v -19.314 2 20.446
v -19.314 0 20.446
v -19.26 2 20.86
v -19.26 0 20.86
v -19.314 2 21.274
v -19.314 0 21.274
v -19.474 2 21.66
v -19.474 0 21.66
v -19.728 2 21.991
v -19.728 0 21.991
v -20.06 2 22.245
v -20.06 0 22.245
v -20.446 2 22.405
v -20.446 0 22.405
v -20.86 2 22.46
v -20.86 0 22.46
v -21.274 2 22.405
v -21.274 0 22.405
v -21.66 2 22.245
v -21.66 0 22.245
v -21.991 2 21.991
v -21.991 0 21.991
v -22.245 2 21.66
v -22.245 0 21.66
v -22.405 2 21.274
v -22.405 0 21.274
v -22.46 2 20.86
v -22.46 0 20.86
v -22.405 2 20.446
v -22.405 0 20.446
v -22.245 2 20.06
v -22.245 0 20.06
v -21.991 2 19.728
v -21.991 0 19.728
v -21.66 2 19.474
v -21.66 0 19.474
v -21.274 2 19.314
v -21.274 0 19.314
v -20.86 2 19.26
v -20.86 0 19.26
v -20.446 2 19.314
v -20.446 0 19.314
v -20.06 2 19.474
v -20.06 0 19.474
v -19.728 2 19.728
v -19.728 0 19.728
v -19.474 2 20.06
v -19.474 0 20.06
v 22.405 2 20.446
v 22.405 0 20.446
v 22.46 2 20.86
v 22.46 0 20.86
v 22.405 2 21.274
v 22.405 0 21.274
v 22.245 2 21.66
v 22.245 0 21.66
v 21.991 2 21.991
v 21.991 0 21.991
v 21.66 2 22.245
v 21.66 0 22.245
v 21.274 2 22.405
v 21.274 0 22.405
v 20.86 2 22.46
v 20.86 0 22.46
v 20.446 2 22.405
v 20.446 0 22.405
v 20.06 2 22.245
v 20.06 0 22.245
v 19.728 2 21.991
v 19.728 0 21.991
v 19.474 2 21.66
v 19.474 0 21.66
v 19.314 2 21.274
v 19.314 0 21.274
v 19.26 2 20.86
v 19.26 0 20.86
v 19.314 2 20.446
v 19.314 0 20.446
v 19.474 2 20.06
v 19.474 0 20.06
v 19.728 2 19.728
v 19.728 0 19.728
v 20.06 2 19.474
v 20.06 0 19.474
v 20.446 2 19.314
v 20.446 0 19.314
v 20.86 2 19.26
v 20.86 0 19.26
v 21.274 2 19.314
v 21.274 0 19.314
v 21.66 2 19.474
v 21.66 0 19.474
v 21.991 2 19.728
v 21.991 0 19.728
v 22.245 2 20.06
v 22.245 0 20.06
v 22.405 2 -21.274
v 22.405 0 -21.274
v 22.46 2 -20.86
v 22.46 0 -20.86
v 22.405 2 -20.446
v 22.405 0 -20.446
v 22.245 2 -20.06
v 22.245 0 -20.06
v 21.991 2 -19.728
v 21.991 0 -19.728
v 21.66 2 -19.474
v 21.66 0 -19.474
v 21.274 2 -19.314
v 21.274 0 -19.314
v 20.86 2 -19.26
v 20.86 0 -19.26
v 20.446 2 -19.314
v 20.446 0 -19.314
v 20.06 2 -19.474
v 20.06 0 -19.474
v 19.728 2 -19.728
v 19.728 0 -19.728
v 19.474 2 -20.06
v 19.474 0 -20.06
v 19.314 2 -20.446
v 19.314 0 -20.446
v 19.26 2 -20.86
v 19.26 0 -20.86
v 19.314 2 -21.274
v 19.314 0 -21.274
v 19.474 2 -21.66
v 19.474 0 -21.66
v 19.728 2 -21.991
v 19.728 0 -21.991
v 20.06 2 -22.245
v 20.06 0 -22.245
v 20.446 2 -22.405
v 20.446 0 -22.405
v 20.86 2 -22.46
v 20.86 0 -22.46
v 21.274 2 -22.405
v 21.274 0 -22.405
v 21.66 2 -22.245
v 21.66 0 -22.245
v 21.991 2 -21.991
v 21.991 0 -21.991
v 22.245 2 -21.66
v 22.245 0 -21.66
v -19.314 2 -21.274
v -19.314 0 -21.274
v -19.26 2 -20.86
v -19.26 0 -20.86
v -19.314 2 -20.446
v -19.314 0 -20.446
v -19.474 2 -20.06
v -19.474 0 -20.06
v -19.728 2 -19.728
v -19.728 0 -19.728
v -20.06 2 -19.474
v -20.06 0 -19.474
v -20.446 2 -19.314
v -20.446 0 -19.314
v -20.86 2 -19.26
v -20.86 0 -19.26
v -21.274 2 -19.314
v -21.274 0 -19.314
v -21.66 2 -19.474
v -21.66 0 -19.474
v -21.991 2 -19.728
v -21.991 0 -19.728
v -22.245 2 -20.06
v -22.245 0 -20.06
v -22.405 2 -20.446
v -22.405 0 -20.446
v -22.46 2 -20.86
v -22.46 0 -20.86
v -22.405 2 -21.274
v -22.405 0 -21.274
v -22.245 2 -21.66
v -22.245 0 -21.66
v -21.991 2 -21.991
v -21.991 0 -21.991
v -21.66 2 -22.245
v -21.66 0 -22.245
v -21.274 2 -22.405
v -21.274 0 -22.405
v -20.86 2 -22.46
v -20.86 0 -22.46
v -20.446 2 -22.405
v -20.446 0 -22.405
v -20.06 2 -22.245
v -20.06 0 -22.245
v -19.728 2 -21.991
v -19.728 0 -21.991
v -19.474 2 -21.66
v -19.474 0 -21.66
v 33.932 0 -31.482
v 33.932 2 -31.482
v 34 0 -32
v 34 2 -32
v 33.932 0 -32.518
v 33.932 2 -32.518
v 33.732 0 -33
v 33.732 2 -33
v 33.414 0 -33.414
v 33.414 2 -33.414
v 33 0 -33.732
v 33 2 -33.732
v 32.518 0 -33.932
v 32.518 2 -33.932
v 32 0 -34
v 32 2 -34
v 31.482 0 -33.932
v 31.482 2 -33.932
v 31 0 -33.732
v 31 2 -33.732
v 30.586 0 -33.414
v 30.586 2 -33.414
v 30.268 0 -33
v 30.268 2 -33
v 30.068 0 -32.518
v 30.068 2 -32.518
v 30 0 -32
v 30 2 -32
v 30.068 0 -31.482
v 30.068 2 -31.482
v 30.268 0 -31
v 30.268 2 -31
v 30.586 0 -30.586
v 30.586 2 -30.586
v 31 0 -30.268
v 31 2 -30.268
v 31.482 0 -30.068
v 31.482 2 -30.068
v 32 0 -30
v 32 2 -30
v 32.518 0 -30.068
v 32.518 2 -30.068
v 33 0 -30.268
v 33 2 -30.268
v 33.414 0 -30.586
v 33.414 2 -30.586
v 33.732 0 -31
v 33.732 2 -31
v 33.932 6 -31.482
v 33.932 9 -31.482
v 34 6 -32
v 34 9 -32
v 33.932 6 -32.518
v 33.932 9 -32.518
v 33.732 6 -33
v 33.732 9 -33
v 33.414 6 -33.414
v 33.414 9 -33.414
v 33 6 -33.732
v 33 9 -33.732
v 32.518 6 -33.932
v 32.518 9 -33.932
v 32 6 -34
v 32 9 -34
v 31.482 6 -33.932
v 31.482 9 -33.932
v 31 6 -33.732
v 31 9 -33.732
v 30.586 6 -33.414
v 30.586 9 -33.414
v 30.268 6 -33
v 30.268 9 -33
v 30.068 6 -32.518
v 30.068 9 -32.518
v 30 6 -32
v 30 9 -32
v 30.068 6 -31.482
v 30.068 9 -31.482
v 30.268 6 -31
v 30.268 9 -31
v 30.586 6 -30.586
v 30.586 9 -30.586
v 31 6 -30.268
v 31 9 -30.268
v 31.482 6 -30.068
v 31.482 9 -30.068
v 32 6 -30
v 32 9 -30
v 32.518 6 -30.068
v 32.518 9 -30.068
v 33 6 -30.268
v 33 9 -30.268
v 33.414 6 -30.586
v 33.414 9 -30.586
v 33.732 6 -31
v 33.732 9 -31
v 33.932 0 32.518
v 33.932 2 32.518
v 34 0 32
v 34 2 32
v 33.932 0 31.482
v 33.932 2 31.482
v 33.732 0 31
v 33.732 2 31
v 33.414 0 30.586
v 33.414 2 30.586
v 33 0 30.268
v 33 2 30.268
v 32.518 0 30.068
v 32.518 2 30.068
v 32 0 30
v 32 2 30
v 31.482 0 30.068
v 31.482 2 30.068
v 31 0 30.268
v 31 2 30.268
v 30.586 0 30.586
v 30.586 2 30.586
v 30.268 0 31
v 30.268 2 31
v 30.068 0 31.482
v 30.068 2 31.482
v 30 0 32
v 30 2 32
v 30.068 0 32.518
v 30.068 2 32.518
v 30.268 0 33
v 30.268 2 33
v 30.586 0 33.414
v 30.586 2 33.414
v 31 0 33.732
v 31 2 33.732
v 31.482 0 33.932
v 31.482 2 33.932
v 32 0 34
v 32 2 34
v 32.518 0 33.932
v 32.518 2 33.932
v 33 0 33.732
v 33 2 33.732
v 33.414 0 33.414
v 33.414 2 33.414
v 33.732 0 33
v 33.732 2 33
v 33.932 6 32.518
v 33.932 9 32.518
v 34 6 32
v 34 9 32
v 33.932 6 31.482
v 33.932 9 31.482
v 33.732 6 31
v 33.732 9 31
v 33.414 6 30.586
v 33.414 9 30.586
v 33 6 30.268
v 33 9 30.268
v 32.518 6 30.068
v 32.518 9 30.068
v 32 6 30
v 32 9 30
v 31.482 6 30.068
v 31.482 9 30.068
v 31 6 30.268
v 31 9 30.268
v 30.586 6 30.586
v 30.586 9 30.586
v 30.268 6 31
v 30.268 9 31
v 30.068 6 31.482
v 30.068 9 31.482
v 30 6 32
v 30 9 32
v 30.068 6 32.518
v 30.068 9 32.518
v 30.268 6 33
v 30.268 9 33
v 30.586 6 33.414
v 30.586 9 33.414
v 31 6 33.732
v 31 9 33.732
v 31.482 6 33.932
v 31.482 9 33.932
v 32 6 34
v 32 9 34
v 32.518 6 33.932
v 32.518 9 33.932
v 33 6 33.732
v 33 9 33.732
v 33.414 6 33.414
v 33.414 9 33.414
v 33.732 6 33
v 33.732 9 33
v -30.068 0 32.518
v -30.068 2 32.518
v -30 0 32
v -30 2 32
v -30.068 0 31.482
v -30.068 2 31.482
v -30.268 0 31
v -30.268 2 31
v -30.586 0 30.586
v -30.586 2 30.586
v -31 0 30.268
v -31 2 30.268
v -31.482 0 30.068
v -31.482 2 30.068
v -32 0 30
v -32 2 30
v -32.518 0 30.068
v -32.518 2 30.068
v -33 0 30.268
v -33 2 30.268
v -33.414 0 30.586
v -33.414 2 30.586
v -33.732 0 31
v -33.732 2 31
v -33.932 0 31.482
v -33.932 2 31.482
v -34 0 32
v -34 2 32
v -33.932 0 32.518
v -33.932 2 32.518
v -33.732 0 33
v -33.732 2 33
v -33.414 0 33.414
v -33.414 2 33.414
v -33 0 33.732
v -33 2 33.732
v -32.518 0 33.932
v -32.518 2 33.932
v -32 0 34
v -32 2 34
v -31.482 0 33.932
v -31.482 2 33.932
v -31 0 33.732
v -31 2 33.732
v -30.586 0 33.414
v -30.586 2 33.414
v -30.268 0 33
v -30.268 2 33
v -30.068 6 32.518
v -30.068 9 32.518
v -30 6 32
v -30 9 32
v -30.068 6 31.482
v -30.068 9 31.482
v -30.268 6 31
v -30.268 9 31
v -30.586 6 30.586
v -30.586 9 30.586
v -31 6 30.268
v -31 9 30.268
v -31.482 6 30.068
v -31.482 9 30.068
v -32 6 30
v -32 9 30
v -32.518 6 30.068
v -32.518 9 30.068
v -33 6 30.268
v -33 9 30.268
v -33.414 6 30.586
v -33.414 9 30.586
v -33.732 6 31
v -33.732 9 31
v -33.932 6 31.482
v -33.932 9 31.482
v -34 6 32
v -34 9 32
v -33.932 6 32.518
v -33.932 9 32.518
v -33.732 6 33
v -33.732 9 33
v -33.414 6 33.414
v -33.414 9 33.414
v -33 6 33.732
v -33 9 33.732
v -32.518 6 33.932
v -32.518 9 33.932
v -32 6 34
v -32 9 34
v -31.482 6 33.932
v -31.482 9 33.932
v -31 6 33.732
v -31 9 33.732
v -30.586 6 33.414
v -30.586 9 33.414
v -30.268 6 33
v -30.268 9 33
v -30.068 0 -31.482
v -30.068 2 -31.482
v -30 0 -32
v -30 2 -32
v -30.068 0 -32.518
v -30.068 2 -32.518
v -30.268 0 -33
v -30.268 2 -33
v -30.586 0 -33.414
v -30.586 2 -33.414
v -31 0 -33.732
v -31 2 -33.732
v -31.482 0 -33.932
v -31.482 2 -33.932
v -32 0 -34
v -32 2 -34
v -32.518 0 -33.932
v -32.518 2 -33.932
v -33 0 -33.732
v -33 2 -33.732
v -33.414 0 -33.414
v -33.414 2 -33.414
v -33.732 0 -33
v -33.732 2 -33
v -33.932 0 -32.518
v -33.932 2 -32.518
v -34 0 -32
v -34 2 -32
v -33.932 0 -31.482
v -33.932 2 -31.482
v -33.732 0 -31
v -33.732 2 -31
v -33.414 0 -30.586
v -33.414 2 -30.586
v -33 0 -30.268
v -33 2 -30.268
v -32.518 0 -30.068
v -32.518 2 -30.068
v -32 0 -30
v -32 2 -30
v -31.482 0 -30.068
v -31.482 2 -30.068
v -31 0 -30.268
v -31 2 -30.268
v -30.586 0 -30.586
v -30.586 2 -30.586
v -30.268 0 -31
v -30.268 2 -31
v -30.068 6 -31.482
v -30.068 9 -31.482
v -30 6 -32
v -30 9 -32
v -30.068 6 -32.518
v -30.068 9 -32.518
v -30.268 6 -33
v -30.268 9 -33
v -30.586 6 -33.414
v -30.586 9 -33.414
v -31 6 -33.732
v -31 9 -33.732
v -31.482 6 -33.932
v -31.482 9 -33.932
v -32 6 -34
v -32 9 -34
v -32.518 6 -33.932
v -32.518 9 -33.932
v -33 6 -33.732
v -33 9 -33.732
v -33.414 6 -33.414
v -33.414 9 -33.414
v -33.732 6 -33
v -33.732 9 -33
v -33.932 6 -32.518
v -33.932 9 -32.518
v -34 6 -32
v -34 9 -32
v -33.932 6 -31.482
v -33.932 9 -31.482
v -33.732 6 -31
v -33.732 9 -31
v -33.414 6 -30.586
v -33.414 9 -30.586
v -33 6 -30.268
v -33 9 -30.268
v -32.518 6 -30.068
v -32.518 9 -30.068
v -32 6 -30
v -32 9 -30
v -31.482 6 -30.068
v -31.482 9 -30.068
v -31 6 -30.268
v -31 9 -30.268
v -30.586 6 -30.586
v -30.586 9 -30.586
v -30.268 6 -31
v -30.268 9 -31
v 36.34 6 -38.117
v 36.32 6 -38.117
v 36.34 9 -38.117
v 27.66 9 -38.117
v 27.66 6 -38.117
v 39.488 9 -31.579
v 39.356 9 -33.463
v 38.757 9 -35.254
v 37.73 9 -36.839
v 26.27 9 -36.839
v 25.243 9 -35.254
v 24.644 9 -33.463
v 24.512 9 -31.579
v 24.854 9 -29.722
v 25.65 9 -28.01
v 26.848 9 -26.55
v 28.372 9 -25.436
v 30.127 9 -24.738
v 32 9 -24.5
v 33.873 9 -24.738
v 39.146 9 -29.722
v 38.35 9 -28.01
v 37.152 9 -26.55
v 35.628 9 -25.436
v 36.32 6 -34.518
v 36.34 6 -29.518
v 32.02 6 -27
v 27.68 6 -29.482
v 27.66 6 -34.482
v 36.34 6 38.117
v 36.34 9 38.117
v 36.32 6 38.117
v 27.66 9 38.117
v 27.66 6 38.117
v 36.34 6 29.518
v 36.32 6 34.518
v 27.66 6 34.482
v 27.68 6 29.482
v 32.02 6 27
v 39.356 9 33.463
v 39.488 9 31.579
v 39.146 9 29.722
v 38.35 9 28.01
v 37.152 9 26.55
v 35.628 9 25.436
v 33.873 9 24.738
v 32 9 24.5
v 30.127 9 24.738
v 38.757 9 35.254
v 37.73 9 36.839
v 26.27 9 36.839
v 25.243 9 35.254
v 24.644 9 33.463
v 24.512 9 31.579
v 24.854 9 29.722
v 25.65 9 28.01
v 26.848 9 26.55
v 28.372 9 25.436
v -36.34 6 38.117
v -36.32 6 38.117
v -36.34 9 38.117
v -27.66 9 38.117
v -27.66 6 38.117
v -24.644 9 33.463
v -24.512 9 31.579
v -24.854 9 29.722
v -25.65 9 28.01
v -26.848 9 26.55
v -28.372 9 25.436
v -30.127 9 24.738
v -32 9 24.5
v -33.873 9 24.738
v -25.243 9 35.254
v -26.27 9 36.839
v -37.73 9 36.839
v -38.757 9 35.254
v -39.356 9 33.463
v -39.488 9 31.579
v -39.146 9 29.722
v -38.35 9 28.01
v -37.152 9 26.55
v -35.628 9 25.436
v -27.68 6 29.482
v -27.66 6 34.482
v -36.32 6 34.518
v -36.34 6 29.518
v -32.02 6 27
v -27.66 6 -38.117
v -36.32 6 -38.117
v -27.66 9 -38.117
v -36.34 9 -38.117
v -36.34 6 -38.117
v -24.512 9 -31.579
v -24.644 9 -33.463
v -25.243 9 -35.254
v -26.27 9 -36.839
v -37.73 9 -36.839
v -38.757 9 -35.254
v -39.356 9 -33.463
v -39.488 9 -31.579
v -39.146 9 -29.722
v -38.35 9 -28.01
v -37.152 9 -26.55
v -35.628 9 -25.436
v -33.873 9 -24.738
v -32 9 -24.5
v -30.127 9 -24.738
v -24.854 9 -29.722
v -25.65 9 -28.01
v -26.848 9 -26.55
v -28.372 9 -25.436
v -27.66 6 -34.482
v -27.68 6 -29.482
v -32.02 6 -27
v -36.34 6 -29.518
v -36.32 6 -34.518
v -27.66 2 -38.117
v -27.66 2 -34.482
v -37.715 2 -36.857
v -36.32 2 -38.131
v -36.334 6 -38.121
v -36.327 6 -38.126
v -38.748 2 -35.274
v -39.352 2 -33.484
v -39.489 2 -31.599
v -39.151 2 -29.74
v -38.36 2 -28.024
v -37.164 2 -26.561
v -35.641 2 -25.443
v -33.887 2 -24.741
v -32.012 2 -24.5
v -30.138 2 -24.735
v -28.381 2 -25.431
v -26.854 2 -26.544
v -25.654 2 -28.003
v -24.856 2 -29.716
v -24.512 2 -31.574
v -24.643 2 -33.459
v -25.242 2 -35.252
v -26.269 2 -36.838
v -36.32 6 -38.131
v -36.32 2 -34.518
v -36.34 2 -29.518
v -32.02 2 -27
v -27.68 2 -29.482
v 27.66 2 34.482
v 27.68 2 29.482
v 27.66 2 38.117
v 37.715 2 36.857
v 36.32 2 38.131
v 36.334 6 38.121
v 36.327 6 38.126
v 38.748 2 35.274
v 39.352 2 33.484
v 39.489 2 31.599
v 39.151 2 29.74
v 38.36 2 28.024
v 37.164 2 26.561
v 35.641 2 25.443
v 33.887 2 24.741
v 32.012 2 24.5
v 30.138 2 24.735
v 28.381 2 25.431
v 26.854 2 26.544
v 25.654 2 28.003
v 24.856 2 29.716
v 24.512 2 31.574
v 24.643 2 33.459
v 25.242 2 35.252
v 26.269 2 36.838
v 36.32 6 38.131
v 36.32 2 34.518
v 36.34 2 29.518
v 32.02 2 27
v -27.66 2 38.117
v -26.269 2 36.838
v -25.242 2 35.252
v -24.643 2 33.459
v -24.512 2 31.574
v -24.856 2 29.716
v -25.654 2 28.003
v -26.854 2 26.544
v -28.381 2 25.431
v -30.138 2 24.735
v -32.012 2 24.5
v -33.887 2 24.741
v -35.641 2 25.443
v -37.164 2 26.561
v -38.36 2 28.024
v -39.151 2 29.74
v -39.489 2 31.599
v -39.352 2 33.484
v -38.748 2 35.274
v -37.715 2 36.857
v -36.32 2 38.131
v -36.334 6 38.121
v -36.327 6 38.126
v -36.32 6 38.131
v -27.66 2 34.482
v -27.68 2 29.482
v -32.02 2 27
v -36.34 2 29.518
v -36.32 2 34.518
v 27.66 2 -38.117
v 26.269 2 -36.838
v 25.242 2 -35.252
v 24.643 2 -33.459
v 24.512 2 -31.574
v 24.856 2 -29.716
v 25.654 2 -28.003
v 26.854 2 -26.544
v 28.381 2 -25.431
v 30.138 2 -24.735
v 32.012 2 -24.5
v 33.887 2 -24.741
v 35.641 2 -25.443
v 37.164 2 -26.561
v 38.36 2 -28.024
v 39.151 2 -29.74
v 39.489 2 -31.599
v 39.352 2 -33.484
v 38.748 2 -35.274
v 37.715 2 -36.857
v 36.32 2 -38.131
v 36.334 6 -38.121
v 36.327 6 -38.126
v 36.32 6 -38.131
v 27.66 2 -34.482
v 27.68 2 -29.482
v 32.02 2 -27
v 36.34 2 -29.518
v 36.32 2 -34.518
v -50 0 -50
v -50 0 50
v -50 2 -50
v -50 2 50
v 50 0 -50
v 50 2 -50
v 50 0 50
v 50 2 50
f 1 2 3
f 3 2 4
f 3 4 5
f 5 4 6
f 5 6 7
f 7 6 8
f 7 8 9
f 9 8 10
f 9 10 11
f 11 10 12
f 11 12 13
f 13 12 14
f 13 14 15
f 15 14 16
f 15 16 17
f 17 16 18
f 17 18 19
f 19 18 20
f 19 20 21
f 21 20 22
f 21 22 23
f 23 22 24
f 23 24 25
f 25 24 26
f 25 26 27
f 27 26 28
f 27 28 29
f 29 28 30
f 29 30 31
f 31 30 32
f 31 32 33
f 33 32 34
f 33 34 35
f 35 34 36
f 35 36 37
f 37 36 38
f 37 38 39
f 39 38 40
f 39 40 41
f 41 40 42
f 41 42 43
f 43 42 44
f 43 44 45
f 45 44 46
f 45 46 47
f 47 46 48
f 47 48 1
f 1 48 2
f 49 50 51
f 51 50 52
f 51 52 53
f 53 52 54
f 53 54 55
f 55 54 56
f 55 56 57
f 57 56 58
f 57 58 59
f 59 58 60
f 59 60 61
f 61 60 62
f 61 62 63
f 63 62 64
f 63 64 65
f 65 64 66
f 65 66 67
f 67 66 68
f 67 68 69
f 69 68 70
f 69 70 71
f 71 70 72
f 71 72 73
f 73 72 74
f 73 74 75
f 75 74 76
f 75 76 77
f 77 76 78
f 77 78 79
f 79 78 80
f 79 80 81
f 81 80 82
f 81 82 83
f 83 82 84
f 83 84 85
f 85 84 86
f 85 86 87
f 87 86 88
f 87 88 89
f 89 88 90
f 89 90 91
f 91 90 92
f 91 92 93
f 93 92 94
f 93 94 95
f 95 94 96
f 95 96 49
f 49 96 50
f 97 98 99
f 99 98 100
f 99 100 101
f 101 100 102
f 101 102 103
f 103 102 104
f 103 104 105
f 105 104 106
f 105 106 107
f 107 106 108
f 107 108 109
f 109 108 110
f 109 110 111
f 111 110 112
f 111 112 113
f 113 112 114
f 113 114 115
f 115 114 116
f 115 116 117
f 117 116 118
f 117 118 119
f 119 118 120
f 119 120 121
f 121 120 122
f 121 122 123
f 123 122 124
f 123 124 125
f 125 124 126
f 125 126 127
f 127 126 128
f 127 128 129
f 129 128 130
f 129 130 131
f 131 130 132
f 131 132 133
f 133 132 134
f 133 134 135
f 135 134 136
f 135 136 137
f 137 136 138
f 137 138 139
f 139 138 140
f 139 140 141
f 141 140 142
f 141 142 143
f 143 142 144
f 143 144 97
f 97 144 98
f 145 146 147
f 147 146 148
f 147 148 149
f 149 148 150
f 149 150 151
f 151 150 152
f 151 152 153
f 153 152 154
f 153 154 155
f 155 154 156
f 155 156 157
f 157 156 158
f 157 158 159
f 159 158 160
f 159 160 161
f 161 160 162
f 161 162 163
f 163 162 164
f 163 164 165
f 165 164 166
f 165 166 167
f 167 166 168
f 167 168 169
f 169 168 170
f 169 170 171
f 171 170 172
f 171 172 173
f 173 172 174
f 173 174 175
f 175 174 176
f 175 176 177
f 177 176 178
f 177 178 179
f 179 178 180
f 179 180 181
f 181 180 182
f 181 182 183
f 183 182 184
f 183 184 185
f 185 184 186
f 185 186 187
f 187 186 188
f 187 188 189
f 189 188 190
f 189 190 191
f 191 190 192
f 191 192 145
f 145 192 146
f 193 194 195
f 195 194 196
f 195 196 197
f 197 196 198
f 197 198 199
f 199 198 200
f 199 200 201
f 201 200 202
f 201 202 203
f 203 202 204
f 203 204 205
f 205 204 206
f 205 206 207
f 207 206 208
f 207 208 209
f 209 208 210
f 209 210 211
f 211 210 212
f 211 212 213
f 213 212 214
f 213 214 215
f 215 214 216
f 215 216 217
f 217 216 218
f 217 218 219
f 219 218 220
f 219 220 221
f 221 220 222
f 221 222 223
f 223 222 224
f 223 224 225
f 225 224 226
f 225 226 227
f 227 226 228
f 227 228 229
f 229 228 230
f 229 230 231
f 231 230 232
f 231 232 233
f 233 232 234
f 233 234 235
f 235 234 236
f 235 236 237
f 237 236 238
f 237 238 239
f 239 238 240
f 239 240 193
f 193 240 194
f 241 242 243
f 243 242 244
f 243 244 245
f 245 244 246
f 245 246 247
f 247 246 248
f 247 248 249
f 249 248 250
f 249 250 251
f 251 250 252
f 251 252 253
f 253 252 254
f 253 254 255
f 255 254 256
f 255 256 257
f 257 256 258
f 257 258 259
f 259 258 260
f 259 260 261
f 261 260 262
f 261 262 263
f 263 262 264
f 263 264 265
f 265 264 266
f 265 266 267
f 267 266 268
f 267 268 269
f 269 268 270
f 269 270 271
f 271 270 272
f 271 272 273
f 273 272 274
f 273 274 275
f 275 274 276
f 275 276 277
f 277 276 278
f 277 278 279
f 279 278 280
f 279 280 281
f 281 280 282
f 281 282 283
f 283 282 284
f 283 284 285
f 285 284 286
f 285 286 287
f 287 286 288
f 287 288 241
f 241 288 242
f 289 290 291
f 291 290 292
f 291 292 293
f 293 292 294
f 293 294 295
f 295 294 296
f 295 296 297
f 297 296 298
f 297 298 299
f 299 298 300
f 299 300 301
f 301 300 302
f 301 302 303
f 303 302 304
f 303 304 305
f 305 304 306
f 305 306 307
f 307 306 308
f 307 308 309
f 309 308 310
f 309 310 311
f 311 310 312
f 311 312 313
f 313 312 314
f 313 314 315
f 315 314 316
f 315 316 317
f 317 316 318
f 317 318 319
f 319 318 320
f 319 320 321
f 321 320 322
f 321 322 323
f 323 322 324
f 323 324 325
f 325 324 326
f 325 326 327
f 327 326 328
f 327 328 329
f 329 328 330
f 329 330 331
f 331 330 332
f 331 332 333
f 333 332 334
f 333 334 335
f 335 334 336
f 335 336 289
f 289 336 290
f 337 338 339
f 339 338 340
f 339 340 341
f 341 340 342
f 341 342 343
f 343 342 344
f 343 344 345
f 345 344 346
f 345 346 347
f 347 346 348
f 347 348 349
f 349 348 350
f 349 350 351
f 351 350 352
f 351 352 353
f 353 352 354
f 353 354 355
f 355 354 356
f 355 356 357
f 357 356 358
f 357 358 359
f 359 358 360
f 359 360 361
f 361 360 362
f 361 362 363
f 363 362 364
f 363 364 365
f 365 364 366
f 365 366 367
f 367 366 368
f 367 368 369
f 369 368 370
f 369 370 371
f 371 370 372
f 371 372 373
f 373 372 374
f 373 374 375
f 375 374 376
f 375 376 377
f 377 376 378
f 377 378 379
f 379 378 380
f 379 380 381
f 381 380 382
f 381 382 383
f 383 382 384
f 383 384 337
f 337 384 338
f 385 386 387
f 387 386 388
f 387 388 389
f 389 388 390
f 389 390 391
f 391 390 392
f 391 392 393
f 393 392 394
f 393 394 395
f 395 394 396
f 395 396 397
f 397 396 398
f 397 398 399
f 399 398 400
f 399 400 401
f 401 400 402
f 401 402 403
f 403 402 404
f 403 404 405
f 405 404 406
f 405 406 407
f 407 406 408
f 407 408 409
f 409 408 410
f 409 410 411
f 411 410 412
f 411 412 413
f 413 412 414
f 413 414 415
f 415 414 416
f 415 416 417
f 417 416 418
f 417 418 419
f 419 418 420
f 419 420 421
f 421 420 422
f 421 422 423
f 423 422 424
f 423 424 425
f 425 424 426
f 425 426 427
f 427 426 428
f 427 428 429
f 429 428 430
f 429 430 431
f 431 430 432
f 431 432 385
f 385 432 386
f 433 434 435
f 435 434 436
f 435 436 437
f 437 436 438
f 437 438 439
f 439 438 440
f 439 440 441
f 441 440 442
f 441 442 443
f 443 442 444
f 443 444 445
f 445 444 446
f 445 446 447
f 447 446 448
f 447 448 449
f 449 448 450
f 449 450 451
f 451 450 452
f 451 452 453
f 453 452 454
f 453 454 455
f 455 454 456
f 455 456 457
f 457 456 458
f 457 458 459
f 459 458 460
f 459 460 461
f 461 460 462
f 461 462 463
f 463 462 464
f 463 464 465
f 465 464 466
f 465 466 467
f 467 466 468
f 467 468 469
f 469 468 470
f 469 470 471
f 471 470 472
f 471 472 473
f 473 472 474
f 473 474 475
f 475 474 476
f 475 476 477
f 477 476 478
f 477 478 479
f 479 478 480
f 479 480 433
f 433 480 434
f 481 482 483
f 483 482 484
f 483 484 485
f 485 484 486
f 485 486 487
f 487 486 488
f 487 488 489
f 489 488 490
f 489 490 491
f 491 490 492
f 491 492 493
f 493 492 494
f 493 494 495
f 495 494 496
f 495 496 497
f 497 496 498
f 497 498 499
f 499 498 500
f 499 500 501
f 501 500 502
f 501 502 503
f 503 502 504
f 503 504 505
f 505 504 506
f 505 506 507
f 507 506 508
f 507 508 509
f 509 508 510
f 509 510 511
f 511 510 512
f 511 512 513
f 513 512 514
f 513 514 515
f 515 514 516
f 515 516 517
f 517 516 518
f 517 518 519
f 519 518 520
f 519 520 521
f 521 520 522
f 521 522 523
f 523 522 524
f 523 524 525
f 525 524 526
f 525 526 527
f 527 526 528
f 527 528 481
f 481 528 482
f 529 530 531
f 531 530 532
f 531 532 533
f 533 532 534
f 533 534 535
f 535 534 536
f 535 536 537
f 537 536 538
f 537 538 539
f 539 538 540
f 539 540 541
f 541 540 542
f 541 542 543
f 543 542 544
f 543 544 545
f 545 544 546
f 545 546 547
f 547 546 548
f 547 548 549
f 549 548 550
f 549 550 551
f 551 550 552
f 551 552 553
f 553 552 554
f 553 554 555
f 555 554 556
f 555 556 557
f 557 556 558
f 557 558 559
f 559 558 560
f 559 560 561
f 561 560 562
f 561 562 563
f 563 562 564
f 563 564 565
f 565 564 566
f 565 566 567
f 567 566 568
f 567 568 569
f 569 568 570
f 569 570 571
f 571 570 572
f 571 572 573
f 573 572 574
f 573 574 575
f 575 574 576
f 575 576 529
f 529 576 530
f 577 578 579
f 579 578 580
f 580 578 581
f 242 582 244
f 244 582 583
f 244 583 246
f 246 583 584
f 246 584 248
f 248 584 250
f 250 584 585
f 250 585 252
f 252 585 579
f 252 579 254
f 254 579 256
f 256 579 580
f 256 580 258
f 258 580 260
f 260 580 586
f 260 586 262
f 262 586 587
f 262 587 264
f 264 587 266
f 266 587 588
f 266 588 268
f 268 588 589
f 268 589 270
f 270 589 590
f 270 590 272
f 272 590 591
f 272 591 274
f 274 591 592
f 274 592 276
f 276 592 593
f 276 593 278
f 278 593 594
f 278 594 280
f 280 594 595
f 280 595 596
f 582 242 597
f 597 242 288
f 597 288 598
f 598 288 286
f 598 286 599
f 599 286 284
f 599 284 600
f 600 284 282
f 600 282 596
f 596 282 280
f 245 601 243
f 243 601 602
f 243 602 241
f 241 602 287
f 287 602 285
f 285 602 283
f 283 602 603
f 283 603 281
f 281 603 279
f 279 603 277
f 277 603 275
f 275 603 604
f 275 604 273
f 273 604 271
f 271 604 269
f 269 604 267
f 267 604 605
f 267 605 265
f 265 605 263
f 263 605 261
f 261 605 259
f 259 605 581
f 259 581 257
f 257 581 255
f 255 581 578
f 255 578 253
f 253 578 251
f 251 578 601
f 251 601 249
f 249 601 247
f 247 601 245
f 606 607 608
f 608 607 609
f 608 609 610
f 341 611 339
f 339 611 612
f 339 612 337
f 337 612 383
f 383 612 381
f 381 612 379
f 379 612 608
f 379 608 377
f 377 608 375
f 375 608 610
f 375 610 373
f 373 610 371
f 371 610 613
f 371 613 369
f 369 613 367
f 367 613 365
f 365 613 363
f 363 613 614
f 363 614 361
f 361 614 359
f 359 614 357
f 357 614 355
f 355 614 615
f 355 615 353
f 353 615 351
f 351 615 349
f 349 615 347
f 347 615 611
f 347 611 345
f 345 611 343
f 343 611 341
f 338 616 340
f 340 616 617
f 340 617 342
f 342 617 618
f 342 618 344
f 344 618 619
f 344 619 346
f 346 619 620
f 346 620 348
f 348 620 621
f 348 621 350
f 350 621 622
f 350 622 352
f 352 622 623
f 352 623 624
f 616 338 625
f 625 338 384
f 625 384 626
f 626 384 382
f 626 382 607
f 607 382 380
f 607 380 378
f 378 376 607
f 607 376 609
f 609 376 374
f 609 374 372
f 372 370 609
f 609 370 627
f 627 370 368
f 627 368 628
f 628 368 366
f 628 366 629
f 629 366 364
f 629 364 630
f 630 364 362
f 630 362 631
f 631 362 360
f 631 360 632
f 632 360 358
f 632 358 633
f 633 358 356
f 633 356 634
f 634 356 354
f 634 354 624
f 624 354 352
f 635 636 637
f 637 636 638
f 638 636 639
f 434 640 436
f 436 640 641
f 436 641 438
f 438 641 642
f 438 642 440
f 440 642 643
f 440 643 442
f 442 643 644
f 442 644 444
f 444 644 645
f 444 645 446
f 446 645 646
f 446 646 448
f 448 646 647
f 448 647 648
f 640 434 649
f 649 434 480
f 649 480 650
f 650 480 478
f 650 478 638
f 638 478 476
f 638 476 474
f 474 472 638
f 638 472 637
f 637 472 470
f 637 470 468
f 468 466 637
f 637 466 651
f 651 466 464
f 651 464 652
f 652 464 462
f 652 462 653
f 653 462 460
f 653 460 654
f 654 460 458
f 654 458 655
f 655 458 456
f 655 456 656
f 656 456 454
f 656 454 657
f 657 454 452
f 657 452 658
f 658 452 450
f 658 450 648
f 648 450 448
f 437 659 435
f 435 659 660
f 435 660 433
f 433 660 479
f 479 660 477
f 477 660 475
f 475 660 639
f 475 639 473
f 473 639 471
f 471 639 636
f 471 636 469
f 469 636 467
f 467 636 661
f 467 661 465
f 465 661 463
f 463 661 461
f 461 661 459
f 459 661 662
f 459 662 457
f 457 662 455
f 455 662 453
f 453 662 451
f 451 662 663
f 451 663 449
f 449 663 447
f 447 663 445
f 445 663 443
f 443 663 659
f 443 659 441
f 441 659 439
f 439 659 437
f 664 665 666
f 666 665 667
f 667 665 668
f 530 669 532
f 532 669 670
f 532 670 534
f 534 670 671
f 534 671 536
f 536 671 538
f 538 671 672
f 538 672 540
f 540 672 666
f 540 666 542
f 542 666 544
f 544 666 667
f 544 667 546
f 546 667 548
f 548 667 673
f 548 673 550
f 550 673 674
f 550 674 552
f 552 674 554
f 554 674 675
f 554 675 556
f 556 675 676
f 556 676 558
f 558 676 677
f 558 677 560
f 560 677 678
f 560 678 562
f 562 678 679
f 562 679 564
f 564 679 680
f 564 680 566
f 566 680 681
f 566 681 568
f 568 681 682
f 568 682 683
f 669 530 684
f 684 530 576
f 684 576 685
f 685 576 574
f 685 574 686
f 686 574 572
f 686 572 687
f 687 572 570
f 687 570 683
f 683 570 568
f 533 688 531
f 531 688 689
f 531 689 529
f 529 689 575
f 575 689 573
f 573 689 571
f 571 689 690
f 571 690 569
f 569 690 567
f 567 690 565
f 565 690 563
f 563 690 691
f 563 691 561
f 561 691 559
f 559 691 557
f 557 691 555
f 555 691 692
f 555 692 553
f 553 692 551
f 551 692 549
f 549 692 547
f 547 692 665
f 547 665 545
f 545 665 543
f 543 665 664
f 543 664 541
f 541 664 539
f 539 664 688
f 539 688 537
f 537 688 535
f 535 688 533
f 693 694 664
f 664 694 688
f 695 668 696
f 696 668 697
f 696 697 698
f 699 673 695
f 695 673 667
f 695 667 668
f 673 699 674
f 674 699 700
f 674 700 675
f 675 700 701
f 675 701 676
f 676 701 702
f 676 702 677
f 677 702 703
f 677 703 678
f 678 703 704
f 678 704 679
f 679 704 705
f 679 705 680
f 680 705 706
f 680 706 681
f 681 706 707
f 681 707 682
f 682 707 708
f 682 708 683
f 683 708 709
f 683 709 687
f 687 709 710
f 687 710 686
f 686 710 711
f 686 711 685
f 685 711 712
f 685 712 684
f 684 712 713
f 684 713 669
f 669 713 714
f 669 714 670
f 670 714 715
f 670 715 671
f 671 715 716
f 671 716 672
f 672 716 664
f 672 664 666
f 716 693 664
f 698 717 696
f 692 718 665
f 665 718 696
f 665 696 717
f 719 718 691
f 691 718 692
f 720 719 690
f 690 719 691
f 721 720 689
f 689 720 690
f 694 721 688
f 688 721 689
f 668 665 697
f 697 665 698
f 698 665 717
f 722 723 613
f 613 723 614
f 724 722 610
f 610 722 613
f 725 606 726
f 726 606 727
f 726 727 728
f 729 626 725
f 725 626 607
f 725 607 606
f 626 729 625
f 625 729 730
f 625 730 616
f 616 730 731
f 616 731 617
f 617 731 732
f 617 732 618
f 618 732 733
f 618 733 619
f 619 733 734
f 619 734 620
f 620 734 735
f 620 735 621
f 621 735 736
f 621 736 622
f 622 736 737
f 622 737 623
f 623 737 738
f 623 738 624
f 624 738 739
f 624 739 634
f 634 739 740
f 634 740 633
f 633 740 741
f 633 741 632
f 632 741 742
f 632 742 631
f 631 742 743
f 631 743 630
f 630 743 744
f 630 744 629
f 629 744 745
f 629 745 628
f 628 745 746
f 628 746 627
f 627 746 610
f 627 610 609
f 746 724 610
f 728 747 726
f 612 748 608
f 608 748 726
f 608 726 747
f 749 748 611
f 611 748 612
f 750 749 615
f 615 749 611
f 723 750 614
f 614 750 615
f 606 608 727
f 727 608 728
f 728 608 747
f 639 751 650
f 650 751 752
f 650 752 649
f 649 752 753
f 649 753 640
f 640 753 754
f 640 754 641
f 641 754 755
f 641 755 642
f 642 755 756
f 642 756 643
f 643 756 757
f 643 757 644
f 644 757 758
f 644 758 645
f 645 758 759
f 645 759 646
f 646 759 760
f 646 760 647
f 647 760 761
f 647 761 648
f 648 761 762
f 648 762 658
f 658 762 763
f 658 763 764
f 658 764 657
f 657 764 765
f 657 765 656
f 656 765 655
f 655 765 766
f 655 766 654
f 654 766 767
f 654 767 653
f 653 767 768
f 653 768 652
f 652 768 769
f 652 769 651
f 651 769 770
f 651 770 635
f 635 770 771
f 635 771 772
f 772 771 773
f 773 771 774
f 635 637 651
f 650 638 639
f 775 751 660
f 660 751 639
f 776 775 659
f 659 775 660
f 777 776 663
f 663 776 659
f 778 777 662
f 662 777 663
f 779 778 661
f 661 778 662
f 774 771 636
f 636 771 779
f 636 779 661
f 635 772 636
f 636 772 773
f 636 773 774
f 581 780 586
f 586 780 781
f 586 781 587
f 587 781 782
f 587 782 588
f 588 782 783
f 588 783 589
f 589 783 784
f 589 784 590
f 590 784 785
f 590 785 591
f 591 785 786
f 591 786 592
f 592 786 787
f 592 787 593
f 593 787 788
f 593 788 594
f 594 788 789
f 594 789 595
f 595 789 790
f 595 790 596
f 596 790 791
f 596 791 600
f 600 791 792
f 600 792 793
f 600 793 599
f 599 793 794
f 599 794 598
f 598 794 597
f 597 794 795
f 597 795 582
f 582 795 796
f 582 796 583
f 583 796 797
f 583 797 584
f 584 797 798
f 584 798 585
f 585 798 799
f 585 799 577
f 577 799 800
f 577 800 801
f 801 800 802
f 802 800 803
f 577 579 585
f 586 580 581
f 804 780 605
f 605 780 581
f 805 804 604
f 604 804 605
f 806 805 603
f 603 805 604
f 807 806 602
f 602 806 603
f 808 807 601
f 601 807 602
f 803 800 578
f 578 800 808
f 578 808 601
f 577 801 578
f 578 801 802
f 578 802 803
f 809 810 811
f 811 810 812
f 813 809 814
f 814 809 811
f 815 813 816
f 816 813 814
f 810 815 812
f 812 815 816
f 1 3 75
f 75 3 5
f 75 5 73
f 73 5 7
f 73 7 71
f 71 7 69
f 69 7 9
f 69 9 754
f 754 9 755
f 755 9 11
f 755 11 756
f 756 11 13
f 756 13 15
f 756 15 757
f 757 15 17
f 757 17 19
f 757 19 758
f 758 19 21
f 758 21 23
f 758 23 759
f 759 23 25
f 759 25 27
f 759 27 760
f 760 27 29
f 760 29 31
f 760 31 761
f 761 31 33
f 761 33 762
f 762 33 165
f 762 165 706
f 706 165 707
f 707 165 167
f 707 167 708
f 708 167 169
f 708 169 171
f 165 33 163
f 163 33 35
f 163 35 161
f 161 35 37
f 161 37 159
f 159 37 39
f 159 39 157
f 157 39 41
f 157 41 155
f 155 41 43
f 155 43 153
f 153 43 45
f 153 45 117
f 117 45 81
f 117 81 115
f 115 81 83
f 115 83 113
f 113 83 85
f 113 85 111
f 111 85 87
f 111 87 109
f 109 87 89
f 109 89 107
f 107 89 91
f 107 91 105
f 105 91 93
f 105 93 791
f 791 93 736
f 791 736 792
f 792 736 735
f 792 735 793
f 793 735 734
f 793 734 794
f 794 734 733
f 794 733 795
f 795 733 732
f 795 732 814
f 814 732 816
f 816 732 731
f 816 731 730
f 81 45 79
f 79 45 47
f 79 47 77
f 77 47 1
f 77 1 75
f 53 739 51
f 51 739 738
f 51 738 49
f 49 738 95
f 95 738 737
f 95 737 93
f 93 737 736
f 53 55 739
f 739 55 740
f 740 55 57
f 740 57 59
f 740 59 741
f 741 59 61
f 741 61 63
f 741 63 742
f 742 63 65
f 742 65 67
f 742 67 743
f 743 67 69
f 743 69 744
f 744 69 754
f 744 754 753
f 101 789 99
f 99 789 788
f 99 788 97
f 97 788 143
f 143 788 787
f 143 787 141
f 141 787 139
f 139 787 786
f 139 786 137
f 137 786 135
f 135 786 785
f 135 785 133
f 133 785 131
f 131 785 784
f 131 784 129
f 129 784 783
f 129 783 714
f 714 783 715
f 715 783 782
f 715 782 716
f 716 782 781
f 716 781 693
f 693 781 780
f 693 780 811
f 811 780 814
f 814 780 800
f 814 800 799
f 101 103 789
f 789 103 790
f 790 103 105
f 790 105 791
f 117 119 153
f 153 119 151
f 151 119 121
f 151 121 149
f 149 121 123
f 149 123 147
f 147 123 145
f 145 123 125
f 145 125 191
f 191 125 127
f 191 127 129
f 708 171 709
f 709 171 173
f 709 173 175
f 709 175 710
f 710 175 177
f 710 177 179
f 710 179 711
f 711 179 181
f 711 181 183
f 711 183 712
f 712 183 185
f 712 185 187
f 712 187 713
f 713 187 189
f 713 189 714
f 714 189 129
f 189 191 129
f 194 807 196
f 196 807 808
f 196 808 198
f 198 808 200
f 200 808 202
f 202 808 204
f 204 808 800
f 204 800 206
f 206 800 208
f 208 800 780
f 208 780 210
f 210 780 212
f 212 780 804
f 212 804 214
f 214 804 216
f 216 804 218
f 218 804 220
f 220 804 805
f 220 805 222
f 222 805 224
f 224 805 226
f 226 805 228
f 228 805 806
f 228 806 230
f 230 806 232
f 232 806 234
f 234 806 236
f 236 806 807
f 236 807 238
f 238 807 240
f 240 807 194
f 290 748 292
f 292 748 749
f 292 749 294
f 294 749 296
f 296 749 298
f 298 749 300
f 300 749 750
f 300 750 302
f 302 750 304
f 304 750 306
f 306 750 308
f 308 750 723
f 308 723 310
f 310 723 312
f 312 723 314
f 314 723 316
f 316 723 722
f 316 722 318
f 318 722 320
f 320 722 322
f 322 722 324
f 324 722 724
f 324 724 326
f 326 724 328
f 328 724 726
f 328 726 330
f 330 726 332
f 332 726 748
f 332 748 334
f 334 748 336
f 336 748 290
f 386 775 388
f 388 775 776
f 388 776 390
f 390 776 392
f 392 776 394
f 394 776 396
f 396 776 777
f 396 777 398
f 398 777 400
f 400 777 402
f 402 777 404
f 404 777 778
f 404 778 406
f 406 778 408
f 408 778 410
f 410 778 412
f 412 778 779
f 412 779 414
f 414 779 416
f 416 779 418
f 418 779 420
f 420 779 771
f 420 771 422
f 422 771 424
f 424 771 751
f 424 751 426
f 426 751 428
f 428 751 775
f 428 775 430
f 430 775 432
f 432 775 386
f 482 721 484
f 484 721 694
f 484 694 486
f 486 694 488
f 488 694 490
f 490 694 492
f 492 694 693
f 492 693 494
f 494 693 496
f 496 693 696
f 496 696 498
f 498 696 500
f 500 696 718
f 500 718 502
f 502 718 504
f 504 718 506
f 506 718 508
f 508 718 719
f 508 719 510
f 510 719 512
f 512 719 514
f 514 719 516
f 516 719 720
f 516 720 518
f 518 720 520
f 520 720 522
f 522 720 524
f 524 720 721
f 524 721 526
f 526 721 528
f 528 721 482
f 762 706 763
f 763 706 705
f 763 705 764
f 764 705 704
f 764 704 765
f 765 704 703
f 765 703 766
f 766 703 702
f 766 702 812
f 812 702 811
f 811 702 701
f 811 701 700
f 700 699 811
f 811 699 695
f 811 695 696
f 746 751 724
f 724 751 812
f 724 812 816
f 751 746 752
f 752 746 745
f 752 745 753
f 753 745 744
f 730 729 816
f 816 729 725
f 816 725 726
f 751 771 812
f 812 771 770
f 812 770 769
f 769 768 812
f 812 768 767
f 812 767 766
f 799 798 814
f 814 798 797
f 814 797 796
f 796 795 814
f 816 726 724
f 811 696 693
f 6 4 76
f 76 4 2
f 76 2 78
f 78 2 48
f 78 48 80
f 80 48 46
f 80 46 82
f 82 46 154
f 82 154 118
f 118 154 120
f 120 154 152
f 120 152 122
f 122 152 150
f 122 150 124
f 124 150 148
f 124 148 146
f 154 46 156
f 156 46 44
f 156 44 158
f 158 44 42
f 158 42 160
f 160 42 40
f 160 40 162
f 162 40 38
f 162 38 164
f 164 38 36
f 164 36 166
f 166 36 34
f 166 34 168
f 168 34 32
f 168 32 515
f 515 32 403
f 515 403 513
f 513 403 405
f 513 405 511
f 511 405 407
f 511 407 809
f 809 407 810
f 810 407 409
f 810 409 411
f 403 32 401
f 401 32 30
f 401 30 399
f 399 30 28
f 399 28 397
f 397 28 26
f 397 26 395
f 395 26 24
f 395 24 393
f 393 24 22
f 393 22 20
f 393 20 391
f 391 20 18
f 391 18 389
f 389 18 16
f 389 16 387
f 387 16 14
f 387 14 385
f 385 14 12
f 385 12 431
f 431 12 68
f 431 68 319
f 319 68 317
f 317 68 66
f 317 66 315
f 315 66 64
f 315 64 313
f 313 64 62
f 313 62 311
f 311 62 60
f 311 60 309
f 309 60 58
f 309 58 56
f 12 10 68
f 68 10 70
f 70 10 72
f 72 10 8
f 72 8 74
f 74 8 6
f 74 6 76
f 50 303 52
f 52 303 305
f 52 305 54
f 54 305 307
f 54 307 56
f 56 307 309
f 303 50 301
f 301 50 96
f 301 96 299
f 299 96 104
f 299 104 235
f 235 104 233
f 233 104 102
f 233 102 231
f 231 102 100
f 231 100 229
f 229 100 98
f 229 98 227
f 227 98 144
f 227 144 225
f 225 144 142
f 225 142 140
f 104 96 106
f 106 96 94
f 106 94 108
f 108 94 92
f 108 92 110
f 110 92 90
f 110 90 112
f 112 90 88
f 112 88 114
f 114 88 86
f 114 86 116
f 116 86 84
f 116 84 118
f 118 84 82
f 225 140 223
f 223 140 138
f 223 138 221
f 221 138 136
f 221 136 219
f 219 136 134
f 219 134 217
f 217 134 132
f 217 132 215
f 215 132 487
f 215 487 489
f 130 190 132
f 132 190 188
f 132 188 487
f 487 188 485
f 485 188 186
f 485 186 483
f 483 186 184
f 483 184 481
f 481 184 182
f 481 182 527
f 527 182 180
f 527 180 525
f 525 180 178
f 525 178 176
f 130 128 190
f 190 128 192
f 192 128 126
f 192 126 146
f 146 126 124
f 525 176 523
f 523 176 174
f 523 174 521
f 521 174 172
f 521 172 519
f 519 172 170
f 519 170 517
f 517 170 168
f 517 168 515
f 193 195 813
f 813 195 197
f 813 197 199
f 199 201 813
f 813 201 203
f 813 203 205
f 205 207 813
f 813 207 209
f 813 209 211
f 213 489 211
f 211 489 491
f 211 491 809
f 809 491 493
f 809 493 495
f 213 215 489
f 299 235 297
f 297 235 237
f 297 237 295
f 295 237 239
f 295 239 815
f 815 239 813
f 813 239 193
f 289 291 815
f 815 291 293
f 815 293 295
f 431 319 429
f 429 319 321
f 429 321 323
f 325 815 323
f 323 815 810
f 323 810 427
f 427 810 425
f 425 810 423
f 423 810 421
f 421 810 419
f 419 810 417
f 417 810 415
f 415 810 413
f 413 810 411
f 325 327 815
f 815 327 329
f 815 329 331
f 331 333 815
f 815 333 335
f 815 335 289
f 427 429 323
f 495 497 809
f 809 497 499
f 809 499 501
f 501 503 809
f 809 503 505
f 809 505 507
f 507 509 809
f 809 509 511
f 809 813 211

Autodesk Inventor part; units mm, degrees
ref_plane "YZ Plane" through (0, 0, 0) normal (1, 0, 0) x (0, 1, 0)
ref_plane "XZ Plane" through (0, 0, 0) normal (0, 1, 0) x (-1, 0, 0)
ref_plane "XY Plane" through (0, 0, 0) normal (0, 0, 1) x (1, 0, 0)
sketch "Esquisse1" plane through (0, 0, 0) normal (0, 1, 0) x (-1, 0, 0)
  line L0 (50, 50) -> (-50, 50)
  line L1 (-50, 50) -> (-50, -50)
  line L2 (-50, -50) -> (50, -50)
  line L3 (50, -50) -> (50, 50)
  point P0 (0, 0)
  dimension "d0" = 100
  dimension "d1" = 100
  dimension "d17" = 50
  dimension "d18" = 50
extrude "Extrusion1" add sketch "Esquisse1" along normal blind 2
sketch "Esquisse2" plane through (0, 2, 0) normal (0, 1, 0) x (1, 0, 0)
  line L0 (50, -50) -> (50, 50) projected
  line L1 (-50, -50) -> (50, -50) projected
  arc A0 (36.32, -38.1309) -> (27.6597, -38.1165) centre (32, -32) ccw
  line L2 (27.68, -29.4825) -> (32.0203, -27)
  line L3 (32.0203, -27) -> (36.3403, -29.5175)
  line L4 (36.3403, -29.5175) -> (36.32, -34.5175)
  line L5 (27.6597, -34.4825) -> (27.68, -29.4825)
  line L6 (27.6597, -34.4825) -> (27.6597, -38.1165)
  line L7 (36.32, -34.5175) -> (36.32, -38.1309)
  line L8 (53.6963, 0) -> (-74.6388, 0)
  line L9 (0, -61.7794) -> (0, 59.6738)
  arc A1 (-27.6597, -38.1165) -> (-36.32, -38.1309) centre (-32, -32) ccw
  line L10 (-27.68, -29.4825) -> (-32.0203, -27)
  line L11 (-32.0203, -27) -> (-36.3403, -29.5175)
  line L12 (-36.3403, -29.5175) -> (-36.32, -34.5175)
  line L13 (-27.6597, -34.4825) -> (-27.68, -29.4825)
  line L14 (-27.6597, -34.4825) -> (-27.6597, -38.1165)
  line L15 (-36.32, -34.5175) -> (-36.32, -38.1309)
  arc A2 (27.6597, 38.1165) -> (36.32, 38.1309) centre (32, 32) ccw
  line L16 (27.68, 29.4825) -> (32.0203, 27)
  line L17 (32.0203, 27) -> (36.3403, 29.5175)
  line L18 (36.3403, 29.5175) -> (36.32, 34.5175)
  line L19 (27.6597, 34.4825) -> (27.68, 29.4825)
  line L20 (27.6597, 34.4825) -> (27.6597, 38.1165)
  line L21 (36.32, 34.5175) -> (36.32, 38.1309)
  arc A3 (-36.32, 38.1309) -> (-27.6597, 38.1165) centre (-32, 32) ccw
  line L22 (-27.68, 29.4825) -> (-32.0203, 27)
  line L23 (-32.0203, 27) -> (-36.3403, 29.5175)
  line L24 (-36.3403, 29.5175) -> (-36.32, 34.5175)
  line L25 (-27.6597, 34.4825) -> (-27.68, 29.4825)
  line L26 (-27.6597, 34.4825) -> (-27.6597, 38.1165)
  line L27 (-36.32, 34.5175) -> (-36.32, 38.1309)
  point P0 (0, 0)
  dimension "d6" = 18
  dimension "d7" = 18
  dimension "d8" = 15
  dimension "d9" = 5
extrude "Extrusion2" add sketch "Esquisse2" along normal blind 4 contours L7 L4 L3 L2 L5 L6 A0 | L14 L13 L10 L11 L12 L15 A1 | L20 L19 L16 L17 L18 L21 A2 | L27 L24 L23 L22 L25 L26 A3
sketch "Esquisse4" plane through (0, 6, 0) normal (0, 1, 0) x (1, 0, 0)
  arc A0 (36.32, -38.1309) -> (27.6597, -38.1165) centre (32, -32) ccw projected
  line L0 (27.6597, -38.1165) -> (36.3403, -38.1165)
  line L1 (53.7761, 0) -> (-84.9694, 0)
  line L2 (0, -51.9111) -> (0, 71.3221)
  arc A1 (-27.6597, -38.1165) -> (-36.32, -38.1309) centre (-32, -32) ccw
  line L3 (-27.6597, -38.1165) -> (-36.3403, -38.1165)
  arc A2 (27.6597, 38.1165) -> (36.32, 38.1309) centre (32, 32) ccw
  line L4 (27.6597, 38.1165) -> (36.3403, 38.1165)
  arc A3 (-36.32, 38.1309) -> (-27.6597, 38.1165) centre (-32, 32) ccw
  line L5 (-27.6597, 38.1165) -> (-36.3403, 38.1165)
  point P0 (0, 0)
extrude "Extrusion3" add sketch "Esquisse4" along normal blind 3
sketch "Esquisse5" plane through (0, 9, 0) normal (0, 1, 0) x (1, 0, 0)
  circle A0 centre (32, -32) radius 2
  arc A1 (36.3403, -38.1165) -> (27.6597, -38.1165) centre (32, -32) ccw projected
  line L0 (0, -51.4977) -> (0, 66.0278)
  line L1 (54.9768, 0) -> (-89.9714, 0)
  circle A2 centre (-32, -32) radius 2
  arc A3 (-27.6597, -38.1165) -> (-36.3403, -38.1165) centre (-32, -32) ccw
  circle A4 centre (32, 32) radius 2
  arc A5 (27.6597, 38.1165) -> (36.3403, 38.1165) centre (32, 32) ccw
  circle A6 centre (-32, 32) radius 2
  arc A7 (-36.3403, 38.1165) -> (-27.6597, 38.1165) centre (-32, 32) ccw
  point P0 (0, 0)
  dimension "d14" = 4
extrude "Extrusion4" cut sketch "Esquisse5" against normal through all
ref_plane "Plan de construction3" through (0, 0, 50) normal (1, 0, 0) x (0, 0, -1)
ref_plane "Plan de construction4" through (-50, 0, 0) normal (0, 0, 1) x (1, 0, 0)
sketch "Esquisse6" plane through (0, 0, 0) normal (0, -1, 0) x (1, 0, 0)
  circle A0 centre (20.8597, 20.8597) radius 1.6 projected
  circle A1 centre (20.8597, -20.8597) radius 1.6 projected
  circle A2 centre (-20.8597, 20.8597) radius 1.6 projected
  circle A3 centre (-20.8597, -20.8597) radius 1.6 projected
  point P0 (0, 0)
extrude "Extrusion5" cut sketch "Esquisse6" against normal through all
properties part number "support-balise"
